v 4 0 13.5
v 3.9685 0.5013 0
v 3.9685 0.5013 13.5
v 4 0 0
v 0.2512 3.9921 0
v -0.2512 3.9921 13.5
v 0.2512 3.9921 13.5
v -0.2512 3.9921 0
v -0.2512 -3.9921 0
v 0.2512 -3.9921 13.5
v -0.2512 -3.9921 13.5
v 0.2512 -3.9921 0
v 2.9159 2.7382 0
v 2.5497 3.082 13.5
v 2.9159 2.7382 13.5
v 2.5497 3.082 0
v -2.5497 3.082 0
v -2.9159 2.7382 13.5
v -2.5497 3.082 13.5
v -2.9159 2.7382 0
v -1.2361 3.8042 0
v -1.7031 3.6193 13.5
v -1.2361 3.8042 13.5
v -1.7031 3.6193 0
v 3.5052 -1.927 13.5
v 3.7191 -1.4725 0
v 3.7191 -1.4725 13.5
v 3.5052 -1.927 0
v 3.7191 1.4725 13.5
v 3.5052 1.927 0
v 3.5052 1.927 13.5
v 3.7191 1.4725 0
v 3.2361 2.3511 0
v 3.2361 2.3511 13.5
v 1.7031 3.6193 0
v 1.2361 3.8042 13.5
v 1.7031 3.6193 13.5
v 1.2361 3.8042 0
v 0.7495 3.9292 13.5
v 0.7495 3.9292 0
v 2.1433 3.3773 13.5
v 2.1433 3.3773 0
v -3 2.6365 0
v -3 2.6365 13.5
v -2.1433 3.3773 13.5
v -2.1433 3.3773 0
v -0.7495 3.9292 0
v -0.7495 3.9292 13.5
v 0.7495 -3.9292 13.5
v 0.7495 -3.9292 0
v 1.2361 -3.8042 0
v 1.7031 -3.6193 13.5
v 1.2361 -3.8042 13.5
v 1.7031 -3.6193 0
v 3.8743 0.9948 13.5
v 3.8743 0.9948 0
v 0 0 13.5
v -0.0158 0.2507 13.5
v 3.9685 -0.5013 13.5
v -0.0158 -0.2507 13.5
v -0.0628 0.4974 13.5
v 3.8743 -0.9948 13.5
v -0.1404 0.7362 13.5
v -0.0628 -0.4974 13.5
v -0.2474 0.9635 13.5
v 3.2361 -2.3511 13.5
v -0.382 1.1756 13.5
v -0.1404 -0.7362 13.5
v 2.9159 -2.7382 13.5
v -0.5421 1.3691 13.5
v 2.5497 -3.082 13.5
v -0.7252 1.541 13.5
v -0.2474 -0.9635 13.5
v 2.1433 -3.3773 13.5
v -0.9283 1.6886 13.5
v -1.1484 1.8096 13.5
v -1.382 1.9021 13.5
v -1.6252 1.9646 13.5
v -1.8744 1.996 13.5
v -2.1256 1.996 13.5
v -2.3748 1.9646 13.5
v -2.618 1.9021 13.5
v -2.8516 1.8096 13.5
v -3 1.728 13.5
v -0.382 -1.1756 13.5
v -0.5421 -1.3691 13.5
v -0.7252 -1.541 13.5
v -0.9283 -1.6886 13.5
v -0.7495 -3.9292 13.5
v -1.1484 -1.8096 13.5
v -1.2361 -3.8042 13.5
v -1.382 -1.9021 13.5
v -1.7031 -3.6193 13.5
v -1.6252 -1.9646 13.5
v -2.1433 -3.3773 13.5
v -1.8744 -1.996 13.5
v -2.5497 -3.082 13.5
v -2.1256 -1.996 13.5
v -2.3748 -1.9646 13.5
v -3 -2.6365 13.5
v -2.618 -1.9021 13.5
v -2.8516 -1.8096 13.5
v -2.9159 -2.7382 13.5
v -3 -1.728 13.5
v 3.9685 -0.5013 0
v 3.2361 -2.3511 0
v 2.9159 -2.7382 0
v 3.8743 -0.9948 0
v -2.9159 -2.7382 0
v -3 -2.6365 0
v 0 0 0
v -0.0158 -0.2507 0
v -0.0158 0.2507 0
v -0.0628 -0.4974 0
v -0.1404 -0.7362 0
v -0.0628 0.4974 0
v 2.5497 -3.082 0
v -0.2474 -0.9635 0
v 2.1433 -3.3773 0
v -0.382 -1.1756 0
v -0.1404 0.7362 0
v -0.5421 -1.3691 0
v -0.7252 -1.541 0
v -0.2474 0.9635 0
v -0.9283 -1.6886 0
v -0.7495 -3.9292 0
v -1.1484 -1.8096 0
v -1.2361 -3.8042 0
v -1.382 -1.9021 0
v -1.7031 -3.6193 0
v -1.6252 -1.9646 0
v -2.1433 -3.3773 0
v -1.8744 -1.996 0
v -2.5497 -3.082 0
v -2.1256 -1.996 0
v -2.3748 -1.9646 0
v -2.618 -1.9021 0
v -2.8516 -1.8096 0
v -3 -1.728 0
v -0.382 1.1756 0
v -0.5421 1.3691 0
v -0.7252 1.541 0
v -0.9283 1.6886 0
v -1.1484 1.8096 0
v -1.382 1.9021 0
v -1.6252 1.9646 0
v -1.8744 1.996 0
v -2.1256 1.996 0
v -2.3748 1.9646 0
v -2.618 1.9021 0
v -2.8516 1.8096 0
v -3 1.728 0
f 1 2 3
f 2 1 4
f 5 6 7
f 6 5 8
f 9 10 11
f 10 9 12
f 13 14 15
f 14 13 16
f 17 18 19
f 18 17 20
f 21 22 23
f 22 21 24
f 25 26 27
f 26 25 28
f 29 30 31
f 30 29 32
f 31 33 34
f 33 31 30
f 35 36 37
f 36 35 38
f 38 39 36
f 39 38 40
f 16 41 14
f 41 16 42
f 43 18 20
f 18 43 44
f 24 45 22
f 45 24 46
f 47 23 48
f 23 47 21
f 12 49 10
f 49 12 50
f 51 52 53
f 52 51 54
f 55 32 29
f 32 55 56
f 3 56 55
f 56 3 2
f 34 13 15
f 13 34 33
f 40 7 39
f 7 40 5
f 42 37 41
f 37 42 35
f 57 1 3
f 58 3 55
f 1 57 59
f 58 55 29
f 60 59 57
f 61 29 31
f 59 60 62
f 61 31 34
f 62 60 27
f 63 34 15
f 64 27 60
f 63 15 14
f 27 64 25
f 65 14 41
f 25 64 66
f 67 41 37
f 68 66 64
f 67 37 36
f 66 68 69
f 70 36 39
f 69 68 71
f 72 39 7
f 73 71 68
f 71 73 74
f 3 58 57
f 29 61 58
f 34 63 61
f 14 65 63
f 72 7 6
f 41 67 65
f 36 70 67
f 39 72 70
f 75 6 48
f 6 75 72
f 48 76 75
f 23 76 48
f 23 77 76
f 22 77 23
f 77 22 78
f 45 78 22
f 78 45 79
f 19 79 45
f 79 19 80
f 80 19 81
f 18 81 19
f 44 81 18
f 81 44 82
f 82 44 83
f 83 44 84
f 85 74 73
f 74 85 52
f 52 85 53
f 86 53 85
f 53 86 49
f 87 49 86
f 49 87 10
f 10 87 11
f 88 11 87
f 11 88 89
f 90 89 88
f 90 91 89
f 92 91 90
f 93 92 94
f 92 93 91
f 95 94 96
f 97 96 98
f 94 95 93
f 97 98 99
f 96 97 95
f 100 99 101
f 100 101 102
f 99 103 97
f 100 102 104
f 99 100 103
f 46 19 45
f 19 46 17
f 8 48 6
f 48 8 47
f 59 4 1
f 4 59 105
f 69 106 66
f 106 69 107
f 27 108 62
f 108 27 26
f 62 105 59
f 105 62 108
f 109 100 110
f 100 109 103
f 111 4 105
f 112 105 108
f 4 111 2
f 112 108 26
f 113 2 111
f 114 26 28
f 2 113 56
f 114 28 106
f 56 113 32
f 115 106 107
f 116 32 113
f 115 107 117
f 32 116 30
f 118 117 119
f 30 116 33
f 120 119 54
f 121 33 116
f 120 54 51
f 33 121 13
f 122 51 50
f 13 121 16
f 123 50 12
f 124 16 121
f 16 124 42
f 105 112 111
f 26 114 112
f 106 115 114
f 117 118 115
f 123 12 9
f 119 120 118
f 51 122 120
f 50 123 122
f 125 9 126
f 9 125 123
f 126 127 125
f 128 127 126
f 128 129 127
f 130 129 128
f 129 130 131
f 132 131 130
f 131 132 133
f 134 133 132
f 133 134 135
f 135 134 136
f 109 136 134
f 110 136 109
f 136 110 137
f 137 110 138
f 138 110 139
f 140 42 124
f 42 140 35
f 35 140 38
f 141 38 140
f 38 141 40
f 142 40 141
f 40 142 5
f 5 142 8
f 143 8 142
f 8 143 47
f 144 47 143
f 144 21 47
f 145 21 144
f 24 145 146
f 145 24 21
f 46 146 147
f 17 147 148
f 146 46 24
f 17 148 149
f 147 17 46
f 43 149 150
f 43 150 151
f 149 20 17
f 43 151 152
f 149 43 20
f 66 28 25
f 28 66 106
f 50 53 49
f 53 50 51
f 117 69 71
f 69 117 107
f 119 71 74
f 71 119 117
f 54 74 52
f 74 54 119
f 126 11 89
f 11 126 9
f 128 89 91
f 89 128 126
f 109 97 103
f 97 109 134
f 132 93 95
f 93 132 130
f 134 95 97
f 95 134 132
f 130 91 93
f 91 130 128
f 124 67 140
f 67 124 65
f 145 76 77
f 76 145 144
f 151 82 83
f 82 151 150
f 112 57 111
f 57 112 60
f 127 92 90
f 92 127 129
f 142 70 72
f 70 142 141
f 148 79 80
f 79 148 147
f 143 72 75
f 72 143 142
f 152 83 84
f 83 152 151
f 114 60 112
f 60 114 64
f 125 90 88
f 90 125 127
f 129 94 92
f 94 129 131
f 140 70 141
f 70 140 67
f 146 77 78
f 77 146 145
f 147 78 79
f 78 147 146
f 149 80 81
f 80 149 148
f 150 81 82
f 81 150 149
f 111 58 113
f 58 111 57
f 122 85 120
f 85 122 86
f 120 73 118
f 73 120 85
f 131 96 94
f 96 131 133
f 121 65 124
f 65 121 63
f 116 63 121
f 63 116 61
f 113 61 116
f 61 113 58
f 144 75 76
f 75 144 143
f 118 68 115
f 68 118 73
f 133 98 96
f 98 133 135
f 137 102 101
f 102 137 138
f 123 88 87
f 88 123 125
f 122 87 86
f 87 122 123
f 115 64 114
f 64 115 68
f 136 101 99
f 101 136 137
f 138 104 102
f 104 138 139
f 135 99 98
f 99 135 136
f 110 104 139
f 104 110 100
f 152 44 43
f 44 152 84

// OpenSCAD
$fn=50;
hs=13.5;
difference()
{
    cylinder(r=8/2, h=hs);
    translate([-2,0,-0.1])
    cylinder(r=4/2, h=hs+0.2);
    translate([-4,-4,-0.1])
    cube([1,8,hs+0.2]);
}
